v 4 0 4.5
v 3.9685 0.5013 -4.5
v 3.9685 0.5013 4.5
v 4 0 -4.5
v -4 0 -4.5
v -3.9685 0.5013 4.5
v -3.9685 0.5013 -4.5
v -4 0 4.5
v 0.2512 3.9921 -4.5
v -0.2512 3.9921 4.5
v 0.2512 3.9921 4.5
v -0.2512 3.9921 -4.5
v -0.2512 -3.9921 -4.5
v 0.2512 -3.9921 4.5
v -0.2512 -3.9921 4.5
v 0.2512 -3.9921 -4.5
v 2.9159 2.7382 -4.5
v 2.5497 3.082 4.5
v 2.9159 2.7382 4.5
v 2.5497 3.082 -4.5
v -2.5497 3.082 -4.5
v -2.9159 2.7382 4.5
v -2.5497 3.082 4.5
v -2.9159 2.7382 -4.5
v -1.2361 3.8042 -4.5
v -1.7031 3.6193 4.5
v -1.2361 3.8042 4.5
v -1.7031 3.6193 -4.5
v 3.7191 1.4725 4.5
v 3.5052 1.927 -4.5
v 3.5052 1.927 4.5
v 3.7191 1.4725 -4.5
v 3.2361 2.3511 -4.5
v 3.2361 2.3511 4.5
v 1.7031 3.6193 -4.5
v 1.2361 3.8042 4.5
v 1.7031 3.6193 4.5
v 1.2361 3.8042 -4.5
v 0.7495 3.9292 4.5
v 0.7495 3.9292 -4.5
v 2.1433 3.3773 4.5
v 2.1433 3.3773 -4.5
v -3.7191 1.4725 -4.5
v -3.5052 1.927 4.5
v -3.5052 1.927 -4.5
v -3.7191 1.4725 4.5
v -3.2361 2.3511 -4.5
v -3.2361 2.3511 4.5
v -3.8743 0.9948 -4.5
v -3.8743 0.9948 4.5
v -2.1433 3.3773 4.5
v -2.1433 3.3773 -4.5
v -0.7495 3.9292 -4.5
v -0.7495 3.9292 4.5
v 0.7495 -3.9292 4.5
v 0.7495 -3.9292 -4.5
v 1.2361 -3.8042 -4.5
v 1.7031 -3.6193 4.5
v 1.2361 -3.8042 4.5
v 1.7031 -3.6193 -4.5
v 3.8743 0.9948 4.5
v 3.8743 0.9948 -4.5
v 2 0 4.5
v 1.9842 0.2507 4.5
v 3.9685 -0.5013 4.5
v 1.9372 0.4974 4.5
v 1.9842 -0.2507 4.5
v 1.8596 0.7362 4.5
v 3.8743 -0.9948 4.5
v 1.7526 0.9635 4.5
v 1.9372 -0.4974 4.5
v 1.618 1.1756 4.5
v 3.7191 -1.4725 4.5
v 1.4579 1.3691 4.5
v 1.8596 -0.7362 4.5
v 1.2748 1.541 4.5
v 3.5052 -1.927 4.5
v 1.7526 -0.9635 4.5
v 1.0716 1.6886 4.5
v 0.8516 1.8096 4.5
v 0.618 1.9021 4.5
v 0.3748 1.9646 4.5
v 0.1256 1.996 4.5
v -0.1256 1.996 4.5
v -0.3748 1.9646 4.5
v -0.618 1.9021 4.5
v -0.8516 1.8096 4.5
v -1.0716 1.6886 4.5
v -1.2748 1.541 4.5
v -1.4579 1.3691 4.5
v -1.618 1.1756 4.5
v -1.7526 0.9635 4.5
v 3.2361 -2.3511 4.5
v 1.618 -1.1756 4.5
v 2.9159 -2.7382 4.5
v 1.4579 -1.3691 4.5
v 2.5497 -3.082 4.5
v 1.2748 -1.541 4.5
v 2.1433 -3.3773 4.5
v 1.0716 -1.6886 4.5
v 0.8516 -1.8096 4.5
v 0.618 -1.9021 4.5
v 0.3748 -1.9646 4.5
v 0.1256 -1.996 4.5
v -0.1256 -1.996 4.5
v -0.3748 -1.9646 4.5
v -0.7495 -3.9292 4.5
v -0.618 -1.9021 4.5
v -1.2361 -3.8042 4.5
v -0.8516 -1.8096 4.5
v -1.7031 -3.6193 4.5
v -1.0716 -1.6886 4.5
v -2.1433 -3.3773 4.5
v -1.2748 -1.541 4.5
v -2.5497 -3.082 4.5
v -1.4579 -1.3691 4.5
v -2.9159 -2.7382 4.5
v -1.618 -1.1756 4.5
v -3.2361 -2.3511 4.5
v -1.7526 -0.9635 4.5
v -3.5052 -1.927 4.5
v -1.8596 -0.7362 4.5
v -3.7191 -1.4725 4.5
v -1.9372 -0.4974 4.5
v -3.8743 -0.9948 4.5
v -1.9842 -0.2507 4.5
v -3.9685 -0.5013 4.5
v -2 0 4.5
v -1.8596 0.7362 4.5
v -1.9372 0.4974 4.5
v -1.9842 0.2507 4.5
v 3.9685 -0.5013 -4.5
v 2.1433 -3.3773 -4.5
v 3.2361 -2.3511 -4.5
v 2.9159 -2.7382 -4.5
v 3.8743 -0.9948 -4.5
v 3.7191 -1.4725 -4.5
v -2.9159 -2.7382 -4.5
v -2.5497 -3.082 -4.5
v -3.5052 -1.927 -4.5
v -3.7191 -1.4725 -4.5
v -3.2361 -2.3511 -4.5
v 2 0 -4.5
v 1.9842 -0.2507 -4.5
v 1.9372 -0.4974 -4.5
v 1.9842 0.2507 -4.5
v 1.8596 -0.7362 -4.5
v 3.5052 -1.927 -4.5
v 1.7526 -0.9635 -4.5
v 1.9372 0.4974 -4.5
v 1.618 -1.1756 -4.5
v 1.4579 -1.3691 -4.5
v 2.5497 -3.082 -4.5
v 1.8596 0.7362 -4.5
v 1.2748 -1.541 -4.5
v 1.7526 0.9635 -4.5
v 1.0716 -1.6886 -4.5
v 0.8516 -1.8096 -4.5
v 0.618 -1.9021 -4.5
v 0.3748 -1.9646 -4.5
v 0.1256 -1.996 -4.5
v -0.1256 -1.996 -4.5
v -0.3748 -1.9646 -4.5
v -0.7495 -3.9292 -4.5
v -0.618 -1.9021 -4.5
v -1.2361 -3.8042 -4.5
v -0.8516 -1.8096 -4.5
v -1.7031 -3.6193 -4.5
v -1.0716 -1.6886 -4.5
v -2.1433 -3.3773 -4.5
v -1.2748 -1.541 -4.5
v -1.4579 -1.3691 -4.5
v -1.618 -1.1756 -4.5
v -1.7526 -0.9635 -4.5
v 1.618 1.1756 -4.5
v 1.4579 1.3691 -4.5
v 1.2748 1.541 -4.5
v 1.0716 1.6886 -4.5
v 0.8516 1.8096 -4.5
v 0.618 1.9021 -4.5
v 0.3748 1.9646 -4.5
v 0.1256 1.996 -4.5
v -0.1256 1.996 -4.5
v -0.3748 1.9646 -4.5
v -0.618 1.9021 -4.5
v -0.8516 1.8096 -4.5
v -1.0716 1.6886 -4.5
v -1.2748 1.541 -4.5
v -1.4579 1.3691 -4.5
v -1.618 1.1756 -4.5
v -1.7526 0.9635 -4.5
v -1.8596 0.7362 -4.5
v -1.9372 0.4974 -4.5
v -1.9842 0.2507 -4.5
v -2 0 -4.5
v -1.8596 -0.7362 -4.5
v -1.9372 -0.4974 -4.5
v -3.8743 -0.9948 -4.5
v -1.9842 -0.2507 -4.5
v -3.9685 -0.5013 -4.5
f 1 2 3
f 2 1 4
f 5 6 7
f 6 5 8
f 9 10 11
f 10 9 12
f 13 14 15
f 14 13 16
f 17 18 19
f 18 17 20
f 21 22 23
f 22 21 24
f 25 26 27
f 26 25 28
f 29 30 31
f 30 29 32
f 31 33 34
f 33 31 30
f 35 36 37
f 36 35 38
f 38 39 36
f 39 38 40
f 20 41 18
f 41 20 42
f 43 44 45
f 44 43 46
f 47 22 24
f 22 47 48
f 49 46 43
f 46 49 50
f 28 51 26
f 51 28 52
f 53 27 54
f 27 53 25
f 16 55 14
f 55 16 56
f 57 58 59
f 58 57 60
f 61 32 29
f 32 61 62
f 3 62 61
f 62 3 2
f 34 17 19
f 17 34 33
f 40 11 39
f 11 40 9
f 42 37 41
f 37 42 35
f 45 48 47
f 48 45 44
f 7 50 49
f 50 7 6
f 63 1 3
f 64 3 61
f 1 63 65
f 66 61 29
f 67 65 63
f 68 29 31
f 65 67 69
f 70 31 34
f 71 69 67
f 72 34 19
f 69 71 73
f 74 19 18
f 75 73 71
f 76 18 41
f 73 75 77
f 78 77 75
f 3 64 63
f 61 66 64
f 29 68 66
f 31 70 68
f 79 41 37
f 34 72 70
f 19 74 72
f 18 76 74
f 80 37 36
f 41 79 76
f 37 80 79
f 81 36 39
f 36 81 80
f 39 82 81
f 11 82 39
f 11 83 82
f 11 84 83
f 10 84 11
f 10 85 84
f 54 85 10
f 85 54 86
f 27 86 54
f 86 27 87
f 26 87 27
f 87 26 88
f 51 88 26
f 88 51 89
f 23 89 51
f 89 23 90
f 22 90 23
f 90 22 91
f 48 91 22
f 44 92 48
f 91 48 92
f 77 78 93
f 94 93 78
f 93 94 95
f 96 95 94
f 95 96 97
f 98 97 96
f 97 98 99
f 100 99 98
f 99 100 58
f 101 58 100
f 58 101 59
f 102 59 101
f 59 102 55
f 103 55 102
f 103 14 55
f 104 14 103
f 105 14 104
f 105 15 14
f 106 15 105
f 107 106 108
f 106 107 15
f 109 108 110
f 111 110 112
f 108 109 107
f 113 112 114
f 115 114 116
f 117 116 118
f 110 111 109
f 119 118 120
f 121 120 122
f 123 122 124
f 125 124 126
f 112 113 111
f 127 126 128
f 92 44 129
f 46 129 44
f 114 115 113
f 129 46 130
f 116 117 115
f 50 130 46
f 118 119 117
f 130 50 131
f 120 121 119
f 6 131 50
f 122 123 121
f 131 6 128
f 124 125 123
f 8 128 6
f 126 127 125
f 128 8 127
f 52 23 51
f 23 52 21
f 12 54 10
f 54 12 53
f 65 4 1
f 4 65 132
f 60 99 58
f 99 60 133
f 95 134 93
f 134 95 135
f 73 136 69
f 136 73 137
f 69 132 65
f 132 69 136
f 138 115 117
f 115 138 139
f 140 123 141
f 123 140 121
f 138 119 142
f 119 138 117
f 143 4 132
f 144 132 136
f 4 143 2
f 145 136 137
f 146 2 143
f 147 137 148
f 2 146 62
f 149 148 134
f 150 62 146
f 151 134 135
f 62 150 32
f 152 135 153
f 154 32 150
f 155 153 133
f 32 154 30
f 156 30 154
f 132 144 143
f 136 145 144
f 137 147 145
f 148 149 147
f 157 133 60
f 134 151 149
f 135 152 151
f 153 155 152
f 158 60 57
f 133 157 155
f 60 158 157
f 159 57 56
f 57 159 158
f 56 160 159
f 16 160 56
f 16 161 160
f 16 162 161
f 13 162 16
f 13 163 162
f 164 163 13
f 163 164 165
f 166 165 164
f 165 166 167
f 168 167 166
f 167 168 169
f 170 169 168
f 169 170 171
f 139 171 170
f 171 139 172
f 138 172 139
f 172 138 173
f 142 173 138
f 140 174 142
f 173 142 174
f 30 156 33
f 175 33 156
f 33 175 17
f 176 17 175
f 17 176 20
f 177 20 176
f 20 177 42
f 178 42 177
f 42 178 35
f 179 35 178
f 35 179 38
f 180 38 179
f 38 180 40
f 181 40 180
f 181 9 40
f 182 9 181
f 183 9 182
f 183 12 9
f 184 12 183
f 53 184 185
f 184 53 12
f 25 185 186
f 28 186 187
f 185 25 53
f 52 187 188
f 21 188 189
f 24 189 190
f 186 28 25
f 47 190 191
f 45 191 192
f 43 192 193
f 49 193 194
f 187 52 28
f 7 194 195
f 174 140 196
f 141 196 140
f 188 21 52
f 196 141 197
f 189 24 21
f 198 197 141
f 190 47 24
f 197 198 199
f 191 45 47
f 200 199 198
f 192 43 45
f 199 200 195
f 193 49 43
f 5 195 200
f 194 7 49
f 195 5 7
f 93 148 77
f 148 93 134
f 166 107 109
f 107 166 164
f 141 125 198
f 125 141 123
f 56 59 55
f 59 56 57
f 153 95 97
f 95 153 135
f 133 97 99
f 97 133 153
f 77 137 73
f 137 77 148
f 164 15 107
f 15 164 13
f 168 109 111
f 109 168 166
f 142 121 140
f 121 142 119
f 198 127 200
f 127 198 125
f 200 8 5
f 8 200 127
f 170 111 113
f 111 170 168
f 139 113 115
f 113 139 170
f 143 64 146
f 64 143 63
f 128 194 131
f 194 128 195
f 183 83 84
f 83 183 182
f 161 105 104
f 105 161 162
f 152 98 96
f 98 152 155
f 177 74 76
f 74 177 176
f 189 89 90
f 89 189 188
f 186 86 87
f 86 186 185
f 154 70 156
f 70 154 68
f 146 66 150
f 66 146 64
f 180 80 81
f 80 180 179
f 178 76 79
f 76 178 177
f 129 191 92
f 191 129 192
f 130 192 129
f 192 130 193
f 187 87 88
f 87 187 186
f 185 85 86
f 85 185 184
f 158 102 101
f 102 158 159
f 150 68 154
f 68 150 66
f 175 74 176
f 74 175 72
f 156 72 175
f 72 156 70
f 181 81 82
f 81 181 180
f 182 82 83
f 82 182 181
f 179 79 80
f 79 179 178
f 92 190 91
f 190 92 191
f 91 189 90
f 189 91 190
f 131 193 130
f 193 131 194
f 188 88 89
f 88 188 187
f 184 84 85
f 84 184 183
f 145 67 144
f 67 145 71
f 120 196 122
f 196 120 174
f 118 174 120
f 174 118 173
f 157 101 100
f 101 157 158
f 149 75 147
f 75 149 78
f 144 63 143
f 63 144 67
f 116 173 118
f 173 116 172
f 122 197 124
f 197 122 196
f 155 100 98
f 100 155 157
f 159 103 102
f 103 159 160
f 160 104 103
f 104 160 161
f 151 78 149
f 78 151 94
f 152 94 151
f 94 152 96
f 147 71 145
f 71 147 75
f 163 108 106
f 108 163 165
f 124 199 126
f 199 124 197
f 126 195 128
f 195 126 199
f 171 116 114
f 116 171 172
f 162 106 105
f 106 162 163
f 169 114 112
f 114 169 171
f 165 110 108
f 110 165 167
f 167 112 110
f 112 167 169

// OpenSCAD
$fn = 50;


difference() {
	union() {
		translate(v = [0, 0, -4.5000000000]) {
			cylinder(h = 9, r = 4.0000000000);
		}
	}
	union() {
		translate(v = [0, 0, -100.0000000000]) {
			cylinder(h = 200, r = 2.0000000000);
		}
	}
}
